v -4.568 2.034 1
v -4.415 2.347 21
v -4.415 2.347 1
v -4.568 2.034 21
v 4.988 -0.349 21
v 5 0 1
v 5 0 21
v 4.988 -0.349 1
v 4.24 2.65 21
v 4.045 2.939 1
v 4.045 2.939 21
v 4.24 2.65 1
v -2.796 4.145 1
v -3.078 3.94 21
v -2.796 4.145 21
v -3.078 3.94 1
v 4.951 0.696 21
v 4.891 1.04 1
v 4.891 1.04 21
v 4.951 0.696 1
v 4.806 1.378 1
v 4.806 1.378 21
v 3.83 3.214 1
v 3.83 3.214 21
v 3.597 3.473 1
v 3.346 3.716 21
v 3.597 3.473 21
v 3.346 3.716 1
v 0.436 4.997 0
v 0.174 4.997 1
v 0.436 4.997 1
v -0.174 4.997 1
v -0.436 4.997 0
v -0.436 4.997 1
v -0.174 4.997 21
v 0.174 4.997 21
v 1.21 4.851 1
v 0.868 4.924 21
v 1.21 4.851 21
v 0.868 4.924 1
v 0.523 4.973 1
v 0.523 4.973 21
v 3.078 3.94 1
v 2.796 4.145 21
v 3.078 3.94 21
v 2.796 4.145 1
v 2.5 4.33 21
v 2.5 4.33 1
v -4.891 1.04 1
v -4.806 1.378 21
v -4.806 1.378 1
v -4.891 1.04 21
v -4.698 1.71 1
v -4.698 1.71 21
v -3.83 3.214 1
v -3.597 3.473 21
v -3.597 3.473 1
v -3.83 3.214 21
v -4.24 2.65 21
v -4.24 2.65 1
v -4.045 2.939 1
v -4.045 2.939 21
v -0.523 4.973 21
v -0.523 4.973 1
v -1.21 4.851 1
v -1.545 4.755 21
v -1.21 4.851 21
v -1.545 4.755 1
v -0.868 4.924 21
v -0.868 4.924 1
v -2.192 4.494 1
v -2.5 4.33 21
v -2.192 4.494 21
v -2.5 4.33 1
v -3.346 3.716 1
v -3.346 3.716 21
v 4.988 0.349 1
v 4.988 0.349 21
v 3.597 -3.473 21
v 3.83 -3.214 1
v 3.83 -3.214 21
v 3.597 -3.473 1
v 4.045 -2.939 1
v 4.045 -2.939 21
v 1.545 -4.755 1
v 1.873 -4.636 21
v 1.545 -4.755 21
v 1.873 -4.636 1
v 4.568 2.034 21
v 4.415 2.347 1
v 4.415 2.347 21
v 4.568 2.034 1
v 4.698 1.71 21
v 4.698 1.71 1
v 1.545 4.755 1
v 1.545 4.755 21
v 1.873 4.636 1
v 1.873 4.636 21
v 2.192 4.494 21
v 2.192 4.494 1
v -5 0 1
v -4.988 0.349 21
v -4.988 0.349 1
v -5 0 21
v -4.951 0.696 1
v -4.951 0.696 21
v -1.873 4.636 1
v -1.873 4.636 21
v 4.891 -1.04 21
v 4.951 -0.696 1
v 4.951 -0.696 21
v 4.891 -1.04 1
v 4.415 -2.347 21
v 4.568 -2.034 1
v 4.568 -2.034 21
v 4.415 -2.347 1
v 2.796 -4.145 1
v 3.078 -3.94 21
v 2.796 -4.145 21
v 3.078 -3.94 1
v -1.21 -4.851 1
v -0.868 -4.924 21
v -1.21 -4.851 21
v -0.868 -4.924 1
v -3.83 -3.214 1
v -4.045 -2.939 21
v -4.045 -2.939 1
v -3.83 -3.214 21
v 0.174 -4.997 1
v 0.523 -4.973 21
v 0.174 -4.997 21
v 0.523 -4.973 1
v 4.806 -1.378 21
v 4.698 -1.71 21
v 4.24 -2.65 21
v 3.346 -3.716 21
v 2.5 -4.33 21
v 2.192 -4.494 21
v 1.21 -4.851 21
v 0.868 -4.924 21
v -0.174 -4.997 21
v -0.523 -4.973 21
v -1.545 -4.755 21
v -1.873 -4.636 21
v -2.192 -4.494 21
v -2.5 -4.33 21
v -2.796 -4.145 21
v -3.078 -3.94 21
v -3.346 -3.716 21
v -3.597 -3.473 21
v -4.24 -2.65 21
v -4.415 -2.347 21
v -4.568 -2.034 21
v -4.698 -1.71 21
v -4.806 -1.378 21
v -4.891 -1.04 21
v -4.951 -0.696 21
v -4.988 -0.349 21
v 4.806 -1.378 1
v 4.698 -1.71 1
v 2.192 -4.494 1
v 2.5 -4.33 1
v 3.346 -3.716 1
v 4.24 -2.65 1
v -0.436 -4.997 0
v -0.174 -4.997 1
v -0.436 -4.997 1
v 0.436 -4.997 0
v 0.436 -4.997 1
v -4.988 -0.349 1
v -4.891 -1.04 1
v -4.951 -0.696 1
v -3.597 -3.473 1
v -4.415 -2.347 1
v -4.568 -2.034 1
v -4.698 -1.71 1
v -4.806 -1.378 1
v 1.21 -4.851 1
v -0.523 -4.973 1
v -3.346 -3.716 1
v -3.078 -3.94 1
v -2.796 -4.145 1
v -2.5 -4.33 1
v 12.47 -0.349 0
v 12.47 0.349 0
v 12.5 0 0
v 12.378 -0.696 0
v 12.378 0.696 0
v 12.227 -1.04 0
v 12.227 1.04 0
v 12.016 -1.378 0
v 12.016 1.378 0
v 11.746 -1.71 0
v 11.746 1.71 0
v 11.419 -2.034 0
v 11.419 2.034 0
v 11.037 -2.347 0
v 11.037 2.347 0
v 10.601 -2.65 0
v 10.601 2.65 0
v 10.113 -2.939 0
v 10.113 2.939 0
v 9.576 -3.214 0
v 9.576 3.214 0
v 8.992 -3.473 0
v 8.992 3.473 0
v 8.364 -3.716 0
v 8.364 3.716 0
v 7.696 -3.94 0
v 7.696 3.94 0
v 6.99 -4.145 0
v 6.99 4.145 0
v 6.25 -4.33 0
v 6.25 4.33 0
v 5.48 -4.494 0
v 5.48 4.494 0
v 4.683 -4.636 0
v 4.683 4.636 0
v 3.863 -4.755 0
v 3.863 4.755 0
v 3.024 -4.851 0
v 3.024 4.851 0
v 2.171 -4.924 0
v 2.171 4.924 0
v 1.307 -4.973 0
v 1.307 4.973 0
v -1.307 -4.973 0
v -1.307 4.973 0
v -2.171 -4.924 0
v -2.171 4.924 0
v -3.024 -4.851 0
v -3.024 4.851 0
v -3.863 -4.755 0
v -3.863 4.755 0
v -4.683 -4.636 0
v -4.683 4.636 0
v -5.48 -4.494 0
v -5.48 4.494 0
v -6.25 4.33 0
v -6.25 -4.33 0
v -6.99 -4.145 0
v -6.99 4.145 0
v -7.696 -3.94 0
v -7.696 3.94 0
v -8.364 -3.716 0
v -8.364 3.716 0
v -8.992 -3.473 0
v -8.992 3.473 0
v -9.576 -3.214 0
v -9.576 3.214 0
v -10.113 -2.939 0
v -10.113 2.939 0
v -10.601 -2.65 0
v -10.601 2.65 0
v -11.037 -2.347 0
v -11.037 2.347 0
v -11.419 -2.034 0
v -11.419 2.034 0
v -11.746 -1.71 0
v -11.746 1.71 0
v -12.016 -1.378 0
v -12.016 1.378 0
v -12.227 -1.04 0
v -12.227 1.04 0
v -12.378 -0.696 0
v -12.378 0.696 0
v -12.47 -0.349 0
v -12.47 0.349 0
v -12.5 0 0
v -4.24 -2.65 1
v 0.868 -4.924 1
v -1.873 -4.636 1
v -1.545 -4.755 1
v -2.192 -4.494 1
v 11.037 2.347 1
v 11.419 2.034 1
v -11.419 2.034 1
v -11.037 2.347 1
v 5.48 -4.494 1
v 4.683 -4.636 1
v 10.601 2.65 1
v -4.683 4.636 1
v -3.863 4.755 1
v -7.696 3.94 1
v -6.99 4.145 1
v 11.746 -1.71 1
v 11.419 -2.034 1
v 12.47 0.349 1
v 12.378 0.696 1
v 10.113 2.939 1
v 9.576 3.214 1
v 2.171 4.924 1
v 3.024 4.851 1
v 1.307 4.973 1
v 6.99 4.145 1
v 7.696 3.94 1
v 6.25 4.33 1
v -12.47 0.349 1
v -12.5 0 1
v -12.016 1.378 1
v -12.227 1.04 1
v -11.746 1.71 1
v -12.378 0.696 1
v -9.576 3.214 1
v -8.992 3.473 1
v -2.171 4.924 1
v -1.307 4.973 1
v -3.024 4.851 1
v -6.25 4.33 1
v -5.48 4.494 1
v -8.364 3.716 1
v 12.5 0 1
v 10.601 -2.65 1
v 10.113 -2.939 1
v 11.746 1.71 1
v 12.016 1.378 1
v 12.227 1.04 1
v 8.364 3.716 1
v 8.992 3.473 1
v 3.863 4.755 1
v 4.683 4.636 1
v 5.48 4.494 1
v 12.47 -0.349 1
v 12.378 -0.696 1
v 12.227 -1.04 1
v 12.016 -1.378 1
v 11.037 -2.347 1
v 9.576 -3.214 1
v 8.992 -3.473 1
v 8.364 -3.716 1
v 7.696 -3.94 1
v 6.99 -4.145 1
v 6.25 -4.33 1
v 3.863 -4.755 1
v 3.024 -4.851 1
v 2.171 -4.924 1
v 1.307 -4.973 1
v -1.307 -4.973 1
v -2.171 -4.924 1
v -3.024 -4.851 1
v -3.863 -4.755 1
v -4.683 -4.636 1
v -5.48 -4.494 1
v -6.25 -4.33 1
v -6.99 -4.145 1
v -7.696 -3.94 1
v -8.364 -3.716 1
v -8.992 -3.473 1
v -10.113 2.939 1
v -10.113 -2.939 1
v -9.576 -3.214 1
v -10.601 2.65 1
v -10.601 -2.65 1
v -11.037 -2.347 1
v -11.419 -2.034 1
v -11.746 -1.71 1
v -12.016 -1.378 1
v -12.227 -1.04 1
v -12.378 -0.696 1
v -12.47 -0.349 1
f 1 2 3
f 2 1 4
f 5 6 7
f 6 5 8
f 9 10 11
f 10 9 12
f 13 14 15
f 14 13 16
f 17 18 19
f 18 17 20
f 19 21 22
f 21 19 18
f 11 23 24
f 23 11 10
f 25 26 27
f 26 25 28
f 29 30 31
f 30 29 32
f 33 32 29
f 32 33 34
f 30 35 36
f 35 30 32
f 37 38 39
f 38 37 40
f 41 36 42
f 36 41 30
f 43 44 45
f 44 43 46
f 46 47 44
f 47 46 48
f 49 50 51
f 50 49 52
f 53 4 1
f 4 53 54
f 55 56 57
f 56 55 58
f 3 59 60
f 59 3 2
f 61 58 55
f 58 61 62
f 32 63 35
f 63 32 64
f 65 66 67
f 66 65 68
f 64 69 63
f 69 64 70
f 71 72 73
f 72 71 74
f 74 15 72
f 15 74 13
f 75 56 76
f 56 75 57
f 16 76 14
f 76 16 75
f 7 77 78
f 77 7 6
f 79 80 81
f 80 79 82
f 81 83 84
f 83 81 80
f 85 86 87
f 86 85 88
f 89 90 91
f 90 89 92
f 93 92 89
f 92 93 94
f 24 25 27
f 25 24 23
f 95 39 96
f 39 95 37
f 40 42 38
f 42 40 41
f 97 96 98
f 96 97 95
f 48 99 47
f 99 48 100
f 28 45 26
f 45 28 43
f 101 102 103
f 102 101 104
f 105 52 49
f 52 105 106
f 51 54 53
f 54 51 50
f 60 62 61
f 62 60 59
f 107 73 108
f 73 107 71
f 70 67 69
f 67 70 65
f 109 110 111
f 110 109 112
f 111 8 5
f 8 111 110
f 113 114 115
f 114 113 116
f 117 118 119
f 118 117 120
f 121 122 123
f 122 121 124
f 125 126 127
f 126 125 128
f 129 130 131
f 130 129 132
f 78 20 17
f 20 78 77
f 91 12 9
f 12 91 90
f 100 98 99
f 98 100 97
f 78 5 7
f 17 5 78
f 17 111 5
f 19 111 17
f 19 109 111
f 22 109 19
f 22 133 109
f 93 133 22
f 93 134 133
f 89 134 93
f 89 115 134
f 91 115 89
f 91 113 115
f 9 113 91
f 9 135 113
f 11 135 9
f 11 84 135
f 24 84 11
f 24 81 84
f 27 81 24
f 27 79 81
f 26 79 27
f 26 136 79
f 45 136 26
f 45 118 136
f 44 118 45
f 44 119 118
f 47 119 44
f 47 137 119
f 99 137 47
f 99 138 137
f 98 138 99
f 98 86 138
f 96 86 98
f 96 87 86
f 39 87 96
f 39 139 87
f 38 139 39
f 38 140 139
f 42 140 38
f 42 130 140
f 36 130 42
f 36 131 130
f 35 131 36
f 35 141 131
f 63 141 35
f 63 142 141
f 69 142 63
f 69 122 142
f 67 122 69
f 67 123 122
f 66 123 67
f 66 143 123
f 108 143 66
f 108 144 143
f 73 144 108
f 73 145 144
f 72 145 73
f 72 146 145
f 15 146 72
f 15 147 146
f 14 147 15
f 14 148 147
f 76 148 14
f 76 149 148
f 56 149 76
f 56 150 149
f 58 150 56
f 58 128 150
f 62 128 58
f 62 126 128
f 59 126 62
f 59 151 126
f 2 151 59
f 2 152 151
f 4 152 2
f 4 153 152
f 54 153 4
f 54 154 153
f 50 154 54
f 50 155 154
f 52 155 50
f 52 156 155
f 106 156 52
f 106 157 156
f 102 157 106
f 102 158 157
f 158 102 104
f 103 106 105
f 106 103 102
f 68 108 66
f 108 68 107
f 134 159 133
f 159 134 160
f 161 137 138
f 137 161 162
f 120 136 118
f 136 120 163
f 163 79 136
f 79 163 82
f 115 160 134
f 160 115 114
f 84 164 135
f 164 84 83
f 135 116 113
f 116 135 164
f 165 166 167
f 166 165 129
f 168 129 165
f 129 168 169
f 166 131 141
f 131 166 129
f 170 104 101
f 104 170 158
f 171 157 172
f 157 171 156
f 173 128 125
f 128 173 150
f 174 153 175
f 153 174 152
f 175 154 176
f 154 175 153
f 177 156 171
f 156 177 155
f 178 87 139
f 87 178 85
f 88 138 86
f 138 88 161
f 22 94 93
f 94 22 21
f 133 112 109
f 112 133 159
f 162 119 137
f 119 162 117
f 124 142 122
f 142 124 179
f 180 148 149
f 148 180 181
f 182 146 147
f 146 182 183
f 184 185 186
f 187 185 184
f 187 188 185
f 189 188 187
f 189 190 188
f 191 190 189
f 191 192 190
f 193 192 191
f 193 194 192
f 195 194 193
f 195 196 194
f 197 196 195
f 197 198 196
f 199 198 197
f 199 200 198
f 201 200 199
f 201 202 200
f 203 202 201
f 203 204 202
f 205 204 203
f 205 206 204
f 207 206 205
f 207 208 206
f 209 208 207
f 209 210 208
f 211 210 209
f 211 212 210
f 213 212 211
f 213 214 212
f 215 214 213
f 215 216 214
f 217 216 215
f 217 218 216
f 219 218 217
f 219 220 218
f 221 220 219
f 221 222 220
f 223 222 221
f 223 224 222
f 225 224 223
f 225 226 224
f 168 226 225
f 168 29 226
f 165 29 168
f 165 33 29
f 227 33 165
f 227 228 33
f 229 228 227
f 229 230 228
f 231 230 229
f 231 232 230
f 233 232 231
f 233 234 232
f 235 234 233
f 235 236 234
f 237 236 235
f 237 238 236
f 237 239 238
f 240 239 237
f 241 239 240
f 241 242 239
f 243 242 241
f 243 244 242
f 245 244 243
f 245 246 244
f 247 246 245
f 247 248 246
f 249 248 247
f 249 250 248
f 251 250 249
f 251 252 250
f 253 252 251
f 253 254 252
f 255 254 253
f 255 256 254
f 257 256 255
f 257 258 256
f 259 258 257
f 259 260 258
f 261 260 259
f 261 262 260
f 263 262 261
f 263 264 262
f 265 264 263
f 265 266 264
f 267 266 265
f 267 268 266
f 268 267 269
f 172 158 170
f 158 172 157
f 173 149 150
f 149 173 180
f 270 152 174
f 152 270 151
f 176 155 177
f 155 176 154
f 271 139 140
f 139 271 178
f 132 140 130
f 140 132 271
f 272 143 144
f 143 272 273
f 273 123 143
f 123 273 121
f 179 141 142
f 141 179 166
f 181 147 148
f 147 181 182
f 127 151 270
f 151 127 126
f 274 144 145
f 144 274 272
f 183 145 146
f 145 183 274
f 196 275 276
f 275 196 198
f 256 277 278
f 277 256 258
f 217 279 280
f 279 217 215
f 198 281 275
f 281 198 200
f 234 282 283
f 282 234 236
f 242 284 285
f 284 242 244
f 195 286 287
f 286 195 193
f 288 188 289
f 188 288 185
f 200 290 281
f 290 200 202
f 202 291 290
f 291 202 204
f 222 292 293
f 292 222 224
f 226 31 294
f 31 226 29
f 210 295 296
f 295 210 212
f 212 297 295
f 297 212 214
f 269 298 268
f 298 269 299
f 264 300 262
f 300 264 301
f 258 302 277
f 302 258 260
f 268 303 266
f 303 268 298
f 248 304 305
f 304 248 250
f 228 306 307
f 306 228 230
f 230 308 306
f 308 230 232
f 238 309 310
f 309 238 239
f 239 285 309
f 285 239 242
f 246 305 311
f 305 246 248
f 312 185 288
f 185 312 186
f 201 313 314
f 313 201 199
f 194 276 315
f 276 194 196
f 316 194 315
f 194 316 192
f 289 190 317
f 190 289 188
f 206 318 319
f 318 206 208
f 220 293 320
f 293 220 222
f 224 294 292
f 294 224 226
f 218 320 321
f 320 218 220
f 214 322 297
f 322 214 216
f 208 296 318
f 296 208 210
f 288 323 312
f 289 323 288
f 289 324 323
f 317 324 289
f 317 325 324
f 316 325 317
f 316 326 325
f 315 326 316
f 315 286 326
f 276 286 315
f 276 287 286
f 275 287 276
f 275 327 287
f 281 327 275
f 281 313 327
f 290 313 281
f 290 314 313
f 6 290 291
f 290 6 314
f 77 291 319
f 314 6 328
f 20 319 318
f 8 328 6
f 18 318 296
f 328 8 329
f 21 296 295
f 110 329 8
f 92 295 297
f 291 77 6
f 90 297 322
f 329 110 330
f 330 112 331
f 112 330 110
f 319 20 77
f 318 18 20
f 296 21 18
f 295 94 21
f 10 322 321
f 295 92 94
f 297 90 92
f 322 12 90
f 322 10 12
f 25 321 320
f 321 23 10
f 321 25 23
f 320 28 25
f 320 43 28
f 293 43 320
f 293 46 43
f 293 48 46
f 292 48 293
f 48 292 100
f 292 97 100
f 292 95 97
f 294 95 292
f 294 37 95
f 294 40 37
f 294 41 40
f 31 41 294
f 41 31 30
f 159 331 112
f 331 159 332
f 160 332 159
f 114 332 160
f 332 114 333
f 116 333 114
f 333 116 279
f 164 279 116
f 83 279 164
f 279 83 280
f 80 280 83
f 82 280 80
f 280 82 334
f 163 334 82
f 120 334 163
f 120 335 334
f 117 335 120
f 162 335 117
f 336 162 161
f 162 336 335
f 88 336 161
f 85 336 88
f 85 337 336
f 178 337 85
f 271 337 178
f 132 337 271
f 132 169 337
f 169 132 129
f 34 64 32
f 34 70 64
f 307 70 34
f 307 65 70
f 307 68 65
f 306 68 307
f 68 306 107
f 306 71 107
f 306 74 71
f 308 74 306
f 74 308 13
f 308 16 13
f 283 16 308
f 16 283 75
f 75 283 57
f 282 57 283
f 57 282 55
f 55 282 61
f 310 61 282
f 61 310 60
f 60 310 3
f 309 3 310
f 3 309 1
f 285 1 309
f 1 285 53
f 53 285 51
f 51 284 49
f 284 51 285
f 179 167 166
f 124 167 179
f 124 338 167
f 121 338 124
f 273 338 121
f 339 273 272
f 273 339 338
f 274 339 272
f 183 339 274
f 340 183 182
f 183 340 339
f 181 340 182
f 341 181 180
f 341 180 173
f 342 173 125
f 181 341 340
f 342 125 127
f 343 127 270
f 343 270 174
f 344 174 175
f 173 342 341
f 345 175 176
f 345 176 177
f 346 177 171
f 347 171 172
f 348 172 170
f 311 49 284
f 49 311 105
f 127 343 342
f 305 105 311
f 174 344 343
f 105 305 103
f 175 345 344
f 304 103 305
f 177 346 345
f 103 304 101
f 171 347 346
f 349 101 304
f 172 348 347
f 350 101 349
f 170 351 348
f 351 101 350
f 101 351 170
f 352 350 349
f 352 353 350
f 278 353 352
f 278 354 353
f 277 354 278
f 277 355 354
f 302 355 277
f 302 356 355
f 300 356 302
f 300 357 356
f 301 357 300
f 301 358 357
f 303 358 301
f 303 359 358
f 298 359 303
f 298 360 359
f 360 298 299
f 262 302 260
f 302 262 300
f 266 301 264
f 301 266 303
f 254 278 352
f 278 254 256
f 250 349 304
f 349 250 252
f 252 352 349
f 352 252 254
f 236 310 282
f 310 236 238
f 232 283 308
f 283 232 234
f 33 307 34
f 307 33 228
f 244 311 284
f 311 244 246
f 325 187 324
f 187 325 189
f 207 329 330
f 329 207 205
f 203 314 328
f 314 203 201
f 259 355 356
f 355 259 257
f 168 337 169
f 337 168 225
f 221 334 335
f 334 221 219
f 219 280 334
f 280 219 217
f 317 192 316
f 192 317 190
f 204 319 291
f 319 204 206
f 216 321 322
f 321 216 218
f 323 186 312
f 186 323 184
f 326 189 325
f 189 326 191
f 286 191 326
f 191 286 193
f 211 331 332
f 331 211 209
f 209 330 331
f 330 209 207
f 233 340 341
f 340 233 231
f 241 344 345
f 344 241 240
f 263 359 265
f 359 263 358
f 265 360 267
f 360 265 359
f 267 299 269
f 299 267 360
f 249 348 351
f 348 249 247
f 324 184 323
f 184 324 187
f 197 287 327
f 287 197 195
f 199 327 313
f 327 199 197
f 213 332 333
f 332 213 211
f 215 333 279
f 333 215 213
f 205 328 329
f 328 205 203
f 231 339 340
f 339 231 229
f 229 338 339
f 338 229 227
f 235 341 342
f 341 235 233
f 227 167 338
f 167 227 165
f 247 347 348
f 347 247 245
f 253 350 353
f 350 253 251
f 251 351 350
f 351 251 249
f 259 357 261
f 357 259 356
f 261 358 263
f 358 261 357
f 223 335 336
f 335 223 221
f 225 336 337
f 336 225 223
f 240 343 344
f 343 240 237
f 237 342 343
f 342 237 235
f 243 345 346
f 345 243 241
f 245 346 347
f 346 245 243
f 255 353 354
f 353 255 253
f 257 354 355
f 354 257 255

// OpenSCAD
$fa = 4;
$fs = 0.2;

cylinder(r=5,h=21);
scale([2.5,1,1])cylinder(r=5,h=1);
